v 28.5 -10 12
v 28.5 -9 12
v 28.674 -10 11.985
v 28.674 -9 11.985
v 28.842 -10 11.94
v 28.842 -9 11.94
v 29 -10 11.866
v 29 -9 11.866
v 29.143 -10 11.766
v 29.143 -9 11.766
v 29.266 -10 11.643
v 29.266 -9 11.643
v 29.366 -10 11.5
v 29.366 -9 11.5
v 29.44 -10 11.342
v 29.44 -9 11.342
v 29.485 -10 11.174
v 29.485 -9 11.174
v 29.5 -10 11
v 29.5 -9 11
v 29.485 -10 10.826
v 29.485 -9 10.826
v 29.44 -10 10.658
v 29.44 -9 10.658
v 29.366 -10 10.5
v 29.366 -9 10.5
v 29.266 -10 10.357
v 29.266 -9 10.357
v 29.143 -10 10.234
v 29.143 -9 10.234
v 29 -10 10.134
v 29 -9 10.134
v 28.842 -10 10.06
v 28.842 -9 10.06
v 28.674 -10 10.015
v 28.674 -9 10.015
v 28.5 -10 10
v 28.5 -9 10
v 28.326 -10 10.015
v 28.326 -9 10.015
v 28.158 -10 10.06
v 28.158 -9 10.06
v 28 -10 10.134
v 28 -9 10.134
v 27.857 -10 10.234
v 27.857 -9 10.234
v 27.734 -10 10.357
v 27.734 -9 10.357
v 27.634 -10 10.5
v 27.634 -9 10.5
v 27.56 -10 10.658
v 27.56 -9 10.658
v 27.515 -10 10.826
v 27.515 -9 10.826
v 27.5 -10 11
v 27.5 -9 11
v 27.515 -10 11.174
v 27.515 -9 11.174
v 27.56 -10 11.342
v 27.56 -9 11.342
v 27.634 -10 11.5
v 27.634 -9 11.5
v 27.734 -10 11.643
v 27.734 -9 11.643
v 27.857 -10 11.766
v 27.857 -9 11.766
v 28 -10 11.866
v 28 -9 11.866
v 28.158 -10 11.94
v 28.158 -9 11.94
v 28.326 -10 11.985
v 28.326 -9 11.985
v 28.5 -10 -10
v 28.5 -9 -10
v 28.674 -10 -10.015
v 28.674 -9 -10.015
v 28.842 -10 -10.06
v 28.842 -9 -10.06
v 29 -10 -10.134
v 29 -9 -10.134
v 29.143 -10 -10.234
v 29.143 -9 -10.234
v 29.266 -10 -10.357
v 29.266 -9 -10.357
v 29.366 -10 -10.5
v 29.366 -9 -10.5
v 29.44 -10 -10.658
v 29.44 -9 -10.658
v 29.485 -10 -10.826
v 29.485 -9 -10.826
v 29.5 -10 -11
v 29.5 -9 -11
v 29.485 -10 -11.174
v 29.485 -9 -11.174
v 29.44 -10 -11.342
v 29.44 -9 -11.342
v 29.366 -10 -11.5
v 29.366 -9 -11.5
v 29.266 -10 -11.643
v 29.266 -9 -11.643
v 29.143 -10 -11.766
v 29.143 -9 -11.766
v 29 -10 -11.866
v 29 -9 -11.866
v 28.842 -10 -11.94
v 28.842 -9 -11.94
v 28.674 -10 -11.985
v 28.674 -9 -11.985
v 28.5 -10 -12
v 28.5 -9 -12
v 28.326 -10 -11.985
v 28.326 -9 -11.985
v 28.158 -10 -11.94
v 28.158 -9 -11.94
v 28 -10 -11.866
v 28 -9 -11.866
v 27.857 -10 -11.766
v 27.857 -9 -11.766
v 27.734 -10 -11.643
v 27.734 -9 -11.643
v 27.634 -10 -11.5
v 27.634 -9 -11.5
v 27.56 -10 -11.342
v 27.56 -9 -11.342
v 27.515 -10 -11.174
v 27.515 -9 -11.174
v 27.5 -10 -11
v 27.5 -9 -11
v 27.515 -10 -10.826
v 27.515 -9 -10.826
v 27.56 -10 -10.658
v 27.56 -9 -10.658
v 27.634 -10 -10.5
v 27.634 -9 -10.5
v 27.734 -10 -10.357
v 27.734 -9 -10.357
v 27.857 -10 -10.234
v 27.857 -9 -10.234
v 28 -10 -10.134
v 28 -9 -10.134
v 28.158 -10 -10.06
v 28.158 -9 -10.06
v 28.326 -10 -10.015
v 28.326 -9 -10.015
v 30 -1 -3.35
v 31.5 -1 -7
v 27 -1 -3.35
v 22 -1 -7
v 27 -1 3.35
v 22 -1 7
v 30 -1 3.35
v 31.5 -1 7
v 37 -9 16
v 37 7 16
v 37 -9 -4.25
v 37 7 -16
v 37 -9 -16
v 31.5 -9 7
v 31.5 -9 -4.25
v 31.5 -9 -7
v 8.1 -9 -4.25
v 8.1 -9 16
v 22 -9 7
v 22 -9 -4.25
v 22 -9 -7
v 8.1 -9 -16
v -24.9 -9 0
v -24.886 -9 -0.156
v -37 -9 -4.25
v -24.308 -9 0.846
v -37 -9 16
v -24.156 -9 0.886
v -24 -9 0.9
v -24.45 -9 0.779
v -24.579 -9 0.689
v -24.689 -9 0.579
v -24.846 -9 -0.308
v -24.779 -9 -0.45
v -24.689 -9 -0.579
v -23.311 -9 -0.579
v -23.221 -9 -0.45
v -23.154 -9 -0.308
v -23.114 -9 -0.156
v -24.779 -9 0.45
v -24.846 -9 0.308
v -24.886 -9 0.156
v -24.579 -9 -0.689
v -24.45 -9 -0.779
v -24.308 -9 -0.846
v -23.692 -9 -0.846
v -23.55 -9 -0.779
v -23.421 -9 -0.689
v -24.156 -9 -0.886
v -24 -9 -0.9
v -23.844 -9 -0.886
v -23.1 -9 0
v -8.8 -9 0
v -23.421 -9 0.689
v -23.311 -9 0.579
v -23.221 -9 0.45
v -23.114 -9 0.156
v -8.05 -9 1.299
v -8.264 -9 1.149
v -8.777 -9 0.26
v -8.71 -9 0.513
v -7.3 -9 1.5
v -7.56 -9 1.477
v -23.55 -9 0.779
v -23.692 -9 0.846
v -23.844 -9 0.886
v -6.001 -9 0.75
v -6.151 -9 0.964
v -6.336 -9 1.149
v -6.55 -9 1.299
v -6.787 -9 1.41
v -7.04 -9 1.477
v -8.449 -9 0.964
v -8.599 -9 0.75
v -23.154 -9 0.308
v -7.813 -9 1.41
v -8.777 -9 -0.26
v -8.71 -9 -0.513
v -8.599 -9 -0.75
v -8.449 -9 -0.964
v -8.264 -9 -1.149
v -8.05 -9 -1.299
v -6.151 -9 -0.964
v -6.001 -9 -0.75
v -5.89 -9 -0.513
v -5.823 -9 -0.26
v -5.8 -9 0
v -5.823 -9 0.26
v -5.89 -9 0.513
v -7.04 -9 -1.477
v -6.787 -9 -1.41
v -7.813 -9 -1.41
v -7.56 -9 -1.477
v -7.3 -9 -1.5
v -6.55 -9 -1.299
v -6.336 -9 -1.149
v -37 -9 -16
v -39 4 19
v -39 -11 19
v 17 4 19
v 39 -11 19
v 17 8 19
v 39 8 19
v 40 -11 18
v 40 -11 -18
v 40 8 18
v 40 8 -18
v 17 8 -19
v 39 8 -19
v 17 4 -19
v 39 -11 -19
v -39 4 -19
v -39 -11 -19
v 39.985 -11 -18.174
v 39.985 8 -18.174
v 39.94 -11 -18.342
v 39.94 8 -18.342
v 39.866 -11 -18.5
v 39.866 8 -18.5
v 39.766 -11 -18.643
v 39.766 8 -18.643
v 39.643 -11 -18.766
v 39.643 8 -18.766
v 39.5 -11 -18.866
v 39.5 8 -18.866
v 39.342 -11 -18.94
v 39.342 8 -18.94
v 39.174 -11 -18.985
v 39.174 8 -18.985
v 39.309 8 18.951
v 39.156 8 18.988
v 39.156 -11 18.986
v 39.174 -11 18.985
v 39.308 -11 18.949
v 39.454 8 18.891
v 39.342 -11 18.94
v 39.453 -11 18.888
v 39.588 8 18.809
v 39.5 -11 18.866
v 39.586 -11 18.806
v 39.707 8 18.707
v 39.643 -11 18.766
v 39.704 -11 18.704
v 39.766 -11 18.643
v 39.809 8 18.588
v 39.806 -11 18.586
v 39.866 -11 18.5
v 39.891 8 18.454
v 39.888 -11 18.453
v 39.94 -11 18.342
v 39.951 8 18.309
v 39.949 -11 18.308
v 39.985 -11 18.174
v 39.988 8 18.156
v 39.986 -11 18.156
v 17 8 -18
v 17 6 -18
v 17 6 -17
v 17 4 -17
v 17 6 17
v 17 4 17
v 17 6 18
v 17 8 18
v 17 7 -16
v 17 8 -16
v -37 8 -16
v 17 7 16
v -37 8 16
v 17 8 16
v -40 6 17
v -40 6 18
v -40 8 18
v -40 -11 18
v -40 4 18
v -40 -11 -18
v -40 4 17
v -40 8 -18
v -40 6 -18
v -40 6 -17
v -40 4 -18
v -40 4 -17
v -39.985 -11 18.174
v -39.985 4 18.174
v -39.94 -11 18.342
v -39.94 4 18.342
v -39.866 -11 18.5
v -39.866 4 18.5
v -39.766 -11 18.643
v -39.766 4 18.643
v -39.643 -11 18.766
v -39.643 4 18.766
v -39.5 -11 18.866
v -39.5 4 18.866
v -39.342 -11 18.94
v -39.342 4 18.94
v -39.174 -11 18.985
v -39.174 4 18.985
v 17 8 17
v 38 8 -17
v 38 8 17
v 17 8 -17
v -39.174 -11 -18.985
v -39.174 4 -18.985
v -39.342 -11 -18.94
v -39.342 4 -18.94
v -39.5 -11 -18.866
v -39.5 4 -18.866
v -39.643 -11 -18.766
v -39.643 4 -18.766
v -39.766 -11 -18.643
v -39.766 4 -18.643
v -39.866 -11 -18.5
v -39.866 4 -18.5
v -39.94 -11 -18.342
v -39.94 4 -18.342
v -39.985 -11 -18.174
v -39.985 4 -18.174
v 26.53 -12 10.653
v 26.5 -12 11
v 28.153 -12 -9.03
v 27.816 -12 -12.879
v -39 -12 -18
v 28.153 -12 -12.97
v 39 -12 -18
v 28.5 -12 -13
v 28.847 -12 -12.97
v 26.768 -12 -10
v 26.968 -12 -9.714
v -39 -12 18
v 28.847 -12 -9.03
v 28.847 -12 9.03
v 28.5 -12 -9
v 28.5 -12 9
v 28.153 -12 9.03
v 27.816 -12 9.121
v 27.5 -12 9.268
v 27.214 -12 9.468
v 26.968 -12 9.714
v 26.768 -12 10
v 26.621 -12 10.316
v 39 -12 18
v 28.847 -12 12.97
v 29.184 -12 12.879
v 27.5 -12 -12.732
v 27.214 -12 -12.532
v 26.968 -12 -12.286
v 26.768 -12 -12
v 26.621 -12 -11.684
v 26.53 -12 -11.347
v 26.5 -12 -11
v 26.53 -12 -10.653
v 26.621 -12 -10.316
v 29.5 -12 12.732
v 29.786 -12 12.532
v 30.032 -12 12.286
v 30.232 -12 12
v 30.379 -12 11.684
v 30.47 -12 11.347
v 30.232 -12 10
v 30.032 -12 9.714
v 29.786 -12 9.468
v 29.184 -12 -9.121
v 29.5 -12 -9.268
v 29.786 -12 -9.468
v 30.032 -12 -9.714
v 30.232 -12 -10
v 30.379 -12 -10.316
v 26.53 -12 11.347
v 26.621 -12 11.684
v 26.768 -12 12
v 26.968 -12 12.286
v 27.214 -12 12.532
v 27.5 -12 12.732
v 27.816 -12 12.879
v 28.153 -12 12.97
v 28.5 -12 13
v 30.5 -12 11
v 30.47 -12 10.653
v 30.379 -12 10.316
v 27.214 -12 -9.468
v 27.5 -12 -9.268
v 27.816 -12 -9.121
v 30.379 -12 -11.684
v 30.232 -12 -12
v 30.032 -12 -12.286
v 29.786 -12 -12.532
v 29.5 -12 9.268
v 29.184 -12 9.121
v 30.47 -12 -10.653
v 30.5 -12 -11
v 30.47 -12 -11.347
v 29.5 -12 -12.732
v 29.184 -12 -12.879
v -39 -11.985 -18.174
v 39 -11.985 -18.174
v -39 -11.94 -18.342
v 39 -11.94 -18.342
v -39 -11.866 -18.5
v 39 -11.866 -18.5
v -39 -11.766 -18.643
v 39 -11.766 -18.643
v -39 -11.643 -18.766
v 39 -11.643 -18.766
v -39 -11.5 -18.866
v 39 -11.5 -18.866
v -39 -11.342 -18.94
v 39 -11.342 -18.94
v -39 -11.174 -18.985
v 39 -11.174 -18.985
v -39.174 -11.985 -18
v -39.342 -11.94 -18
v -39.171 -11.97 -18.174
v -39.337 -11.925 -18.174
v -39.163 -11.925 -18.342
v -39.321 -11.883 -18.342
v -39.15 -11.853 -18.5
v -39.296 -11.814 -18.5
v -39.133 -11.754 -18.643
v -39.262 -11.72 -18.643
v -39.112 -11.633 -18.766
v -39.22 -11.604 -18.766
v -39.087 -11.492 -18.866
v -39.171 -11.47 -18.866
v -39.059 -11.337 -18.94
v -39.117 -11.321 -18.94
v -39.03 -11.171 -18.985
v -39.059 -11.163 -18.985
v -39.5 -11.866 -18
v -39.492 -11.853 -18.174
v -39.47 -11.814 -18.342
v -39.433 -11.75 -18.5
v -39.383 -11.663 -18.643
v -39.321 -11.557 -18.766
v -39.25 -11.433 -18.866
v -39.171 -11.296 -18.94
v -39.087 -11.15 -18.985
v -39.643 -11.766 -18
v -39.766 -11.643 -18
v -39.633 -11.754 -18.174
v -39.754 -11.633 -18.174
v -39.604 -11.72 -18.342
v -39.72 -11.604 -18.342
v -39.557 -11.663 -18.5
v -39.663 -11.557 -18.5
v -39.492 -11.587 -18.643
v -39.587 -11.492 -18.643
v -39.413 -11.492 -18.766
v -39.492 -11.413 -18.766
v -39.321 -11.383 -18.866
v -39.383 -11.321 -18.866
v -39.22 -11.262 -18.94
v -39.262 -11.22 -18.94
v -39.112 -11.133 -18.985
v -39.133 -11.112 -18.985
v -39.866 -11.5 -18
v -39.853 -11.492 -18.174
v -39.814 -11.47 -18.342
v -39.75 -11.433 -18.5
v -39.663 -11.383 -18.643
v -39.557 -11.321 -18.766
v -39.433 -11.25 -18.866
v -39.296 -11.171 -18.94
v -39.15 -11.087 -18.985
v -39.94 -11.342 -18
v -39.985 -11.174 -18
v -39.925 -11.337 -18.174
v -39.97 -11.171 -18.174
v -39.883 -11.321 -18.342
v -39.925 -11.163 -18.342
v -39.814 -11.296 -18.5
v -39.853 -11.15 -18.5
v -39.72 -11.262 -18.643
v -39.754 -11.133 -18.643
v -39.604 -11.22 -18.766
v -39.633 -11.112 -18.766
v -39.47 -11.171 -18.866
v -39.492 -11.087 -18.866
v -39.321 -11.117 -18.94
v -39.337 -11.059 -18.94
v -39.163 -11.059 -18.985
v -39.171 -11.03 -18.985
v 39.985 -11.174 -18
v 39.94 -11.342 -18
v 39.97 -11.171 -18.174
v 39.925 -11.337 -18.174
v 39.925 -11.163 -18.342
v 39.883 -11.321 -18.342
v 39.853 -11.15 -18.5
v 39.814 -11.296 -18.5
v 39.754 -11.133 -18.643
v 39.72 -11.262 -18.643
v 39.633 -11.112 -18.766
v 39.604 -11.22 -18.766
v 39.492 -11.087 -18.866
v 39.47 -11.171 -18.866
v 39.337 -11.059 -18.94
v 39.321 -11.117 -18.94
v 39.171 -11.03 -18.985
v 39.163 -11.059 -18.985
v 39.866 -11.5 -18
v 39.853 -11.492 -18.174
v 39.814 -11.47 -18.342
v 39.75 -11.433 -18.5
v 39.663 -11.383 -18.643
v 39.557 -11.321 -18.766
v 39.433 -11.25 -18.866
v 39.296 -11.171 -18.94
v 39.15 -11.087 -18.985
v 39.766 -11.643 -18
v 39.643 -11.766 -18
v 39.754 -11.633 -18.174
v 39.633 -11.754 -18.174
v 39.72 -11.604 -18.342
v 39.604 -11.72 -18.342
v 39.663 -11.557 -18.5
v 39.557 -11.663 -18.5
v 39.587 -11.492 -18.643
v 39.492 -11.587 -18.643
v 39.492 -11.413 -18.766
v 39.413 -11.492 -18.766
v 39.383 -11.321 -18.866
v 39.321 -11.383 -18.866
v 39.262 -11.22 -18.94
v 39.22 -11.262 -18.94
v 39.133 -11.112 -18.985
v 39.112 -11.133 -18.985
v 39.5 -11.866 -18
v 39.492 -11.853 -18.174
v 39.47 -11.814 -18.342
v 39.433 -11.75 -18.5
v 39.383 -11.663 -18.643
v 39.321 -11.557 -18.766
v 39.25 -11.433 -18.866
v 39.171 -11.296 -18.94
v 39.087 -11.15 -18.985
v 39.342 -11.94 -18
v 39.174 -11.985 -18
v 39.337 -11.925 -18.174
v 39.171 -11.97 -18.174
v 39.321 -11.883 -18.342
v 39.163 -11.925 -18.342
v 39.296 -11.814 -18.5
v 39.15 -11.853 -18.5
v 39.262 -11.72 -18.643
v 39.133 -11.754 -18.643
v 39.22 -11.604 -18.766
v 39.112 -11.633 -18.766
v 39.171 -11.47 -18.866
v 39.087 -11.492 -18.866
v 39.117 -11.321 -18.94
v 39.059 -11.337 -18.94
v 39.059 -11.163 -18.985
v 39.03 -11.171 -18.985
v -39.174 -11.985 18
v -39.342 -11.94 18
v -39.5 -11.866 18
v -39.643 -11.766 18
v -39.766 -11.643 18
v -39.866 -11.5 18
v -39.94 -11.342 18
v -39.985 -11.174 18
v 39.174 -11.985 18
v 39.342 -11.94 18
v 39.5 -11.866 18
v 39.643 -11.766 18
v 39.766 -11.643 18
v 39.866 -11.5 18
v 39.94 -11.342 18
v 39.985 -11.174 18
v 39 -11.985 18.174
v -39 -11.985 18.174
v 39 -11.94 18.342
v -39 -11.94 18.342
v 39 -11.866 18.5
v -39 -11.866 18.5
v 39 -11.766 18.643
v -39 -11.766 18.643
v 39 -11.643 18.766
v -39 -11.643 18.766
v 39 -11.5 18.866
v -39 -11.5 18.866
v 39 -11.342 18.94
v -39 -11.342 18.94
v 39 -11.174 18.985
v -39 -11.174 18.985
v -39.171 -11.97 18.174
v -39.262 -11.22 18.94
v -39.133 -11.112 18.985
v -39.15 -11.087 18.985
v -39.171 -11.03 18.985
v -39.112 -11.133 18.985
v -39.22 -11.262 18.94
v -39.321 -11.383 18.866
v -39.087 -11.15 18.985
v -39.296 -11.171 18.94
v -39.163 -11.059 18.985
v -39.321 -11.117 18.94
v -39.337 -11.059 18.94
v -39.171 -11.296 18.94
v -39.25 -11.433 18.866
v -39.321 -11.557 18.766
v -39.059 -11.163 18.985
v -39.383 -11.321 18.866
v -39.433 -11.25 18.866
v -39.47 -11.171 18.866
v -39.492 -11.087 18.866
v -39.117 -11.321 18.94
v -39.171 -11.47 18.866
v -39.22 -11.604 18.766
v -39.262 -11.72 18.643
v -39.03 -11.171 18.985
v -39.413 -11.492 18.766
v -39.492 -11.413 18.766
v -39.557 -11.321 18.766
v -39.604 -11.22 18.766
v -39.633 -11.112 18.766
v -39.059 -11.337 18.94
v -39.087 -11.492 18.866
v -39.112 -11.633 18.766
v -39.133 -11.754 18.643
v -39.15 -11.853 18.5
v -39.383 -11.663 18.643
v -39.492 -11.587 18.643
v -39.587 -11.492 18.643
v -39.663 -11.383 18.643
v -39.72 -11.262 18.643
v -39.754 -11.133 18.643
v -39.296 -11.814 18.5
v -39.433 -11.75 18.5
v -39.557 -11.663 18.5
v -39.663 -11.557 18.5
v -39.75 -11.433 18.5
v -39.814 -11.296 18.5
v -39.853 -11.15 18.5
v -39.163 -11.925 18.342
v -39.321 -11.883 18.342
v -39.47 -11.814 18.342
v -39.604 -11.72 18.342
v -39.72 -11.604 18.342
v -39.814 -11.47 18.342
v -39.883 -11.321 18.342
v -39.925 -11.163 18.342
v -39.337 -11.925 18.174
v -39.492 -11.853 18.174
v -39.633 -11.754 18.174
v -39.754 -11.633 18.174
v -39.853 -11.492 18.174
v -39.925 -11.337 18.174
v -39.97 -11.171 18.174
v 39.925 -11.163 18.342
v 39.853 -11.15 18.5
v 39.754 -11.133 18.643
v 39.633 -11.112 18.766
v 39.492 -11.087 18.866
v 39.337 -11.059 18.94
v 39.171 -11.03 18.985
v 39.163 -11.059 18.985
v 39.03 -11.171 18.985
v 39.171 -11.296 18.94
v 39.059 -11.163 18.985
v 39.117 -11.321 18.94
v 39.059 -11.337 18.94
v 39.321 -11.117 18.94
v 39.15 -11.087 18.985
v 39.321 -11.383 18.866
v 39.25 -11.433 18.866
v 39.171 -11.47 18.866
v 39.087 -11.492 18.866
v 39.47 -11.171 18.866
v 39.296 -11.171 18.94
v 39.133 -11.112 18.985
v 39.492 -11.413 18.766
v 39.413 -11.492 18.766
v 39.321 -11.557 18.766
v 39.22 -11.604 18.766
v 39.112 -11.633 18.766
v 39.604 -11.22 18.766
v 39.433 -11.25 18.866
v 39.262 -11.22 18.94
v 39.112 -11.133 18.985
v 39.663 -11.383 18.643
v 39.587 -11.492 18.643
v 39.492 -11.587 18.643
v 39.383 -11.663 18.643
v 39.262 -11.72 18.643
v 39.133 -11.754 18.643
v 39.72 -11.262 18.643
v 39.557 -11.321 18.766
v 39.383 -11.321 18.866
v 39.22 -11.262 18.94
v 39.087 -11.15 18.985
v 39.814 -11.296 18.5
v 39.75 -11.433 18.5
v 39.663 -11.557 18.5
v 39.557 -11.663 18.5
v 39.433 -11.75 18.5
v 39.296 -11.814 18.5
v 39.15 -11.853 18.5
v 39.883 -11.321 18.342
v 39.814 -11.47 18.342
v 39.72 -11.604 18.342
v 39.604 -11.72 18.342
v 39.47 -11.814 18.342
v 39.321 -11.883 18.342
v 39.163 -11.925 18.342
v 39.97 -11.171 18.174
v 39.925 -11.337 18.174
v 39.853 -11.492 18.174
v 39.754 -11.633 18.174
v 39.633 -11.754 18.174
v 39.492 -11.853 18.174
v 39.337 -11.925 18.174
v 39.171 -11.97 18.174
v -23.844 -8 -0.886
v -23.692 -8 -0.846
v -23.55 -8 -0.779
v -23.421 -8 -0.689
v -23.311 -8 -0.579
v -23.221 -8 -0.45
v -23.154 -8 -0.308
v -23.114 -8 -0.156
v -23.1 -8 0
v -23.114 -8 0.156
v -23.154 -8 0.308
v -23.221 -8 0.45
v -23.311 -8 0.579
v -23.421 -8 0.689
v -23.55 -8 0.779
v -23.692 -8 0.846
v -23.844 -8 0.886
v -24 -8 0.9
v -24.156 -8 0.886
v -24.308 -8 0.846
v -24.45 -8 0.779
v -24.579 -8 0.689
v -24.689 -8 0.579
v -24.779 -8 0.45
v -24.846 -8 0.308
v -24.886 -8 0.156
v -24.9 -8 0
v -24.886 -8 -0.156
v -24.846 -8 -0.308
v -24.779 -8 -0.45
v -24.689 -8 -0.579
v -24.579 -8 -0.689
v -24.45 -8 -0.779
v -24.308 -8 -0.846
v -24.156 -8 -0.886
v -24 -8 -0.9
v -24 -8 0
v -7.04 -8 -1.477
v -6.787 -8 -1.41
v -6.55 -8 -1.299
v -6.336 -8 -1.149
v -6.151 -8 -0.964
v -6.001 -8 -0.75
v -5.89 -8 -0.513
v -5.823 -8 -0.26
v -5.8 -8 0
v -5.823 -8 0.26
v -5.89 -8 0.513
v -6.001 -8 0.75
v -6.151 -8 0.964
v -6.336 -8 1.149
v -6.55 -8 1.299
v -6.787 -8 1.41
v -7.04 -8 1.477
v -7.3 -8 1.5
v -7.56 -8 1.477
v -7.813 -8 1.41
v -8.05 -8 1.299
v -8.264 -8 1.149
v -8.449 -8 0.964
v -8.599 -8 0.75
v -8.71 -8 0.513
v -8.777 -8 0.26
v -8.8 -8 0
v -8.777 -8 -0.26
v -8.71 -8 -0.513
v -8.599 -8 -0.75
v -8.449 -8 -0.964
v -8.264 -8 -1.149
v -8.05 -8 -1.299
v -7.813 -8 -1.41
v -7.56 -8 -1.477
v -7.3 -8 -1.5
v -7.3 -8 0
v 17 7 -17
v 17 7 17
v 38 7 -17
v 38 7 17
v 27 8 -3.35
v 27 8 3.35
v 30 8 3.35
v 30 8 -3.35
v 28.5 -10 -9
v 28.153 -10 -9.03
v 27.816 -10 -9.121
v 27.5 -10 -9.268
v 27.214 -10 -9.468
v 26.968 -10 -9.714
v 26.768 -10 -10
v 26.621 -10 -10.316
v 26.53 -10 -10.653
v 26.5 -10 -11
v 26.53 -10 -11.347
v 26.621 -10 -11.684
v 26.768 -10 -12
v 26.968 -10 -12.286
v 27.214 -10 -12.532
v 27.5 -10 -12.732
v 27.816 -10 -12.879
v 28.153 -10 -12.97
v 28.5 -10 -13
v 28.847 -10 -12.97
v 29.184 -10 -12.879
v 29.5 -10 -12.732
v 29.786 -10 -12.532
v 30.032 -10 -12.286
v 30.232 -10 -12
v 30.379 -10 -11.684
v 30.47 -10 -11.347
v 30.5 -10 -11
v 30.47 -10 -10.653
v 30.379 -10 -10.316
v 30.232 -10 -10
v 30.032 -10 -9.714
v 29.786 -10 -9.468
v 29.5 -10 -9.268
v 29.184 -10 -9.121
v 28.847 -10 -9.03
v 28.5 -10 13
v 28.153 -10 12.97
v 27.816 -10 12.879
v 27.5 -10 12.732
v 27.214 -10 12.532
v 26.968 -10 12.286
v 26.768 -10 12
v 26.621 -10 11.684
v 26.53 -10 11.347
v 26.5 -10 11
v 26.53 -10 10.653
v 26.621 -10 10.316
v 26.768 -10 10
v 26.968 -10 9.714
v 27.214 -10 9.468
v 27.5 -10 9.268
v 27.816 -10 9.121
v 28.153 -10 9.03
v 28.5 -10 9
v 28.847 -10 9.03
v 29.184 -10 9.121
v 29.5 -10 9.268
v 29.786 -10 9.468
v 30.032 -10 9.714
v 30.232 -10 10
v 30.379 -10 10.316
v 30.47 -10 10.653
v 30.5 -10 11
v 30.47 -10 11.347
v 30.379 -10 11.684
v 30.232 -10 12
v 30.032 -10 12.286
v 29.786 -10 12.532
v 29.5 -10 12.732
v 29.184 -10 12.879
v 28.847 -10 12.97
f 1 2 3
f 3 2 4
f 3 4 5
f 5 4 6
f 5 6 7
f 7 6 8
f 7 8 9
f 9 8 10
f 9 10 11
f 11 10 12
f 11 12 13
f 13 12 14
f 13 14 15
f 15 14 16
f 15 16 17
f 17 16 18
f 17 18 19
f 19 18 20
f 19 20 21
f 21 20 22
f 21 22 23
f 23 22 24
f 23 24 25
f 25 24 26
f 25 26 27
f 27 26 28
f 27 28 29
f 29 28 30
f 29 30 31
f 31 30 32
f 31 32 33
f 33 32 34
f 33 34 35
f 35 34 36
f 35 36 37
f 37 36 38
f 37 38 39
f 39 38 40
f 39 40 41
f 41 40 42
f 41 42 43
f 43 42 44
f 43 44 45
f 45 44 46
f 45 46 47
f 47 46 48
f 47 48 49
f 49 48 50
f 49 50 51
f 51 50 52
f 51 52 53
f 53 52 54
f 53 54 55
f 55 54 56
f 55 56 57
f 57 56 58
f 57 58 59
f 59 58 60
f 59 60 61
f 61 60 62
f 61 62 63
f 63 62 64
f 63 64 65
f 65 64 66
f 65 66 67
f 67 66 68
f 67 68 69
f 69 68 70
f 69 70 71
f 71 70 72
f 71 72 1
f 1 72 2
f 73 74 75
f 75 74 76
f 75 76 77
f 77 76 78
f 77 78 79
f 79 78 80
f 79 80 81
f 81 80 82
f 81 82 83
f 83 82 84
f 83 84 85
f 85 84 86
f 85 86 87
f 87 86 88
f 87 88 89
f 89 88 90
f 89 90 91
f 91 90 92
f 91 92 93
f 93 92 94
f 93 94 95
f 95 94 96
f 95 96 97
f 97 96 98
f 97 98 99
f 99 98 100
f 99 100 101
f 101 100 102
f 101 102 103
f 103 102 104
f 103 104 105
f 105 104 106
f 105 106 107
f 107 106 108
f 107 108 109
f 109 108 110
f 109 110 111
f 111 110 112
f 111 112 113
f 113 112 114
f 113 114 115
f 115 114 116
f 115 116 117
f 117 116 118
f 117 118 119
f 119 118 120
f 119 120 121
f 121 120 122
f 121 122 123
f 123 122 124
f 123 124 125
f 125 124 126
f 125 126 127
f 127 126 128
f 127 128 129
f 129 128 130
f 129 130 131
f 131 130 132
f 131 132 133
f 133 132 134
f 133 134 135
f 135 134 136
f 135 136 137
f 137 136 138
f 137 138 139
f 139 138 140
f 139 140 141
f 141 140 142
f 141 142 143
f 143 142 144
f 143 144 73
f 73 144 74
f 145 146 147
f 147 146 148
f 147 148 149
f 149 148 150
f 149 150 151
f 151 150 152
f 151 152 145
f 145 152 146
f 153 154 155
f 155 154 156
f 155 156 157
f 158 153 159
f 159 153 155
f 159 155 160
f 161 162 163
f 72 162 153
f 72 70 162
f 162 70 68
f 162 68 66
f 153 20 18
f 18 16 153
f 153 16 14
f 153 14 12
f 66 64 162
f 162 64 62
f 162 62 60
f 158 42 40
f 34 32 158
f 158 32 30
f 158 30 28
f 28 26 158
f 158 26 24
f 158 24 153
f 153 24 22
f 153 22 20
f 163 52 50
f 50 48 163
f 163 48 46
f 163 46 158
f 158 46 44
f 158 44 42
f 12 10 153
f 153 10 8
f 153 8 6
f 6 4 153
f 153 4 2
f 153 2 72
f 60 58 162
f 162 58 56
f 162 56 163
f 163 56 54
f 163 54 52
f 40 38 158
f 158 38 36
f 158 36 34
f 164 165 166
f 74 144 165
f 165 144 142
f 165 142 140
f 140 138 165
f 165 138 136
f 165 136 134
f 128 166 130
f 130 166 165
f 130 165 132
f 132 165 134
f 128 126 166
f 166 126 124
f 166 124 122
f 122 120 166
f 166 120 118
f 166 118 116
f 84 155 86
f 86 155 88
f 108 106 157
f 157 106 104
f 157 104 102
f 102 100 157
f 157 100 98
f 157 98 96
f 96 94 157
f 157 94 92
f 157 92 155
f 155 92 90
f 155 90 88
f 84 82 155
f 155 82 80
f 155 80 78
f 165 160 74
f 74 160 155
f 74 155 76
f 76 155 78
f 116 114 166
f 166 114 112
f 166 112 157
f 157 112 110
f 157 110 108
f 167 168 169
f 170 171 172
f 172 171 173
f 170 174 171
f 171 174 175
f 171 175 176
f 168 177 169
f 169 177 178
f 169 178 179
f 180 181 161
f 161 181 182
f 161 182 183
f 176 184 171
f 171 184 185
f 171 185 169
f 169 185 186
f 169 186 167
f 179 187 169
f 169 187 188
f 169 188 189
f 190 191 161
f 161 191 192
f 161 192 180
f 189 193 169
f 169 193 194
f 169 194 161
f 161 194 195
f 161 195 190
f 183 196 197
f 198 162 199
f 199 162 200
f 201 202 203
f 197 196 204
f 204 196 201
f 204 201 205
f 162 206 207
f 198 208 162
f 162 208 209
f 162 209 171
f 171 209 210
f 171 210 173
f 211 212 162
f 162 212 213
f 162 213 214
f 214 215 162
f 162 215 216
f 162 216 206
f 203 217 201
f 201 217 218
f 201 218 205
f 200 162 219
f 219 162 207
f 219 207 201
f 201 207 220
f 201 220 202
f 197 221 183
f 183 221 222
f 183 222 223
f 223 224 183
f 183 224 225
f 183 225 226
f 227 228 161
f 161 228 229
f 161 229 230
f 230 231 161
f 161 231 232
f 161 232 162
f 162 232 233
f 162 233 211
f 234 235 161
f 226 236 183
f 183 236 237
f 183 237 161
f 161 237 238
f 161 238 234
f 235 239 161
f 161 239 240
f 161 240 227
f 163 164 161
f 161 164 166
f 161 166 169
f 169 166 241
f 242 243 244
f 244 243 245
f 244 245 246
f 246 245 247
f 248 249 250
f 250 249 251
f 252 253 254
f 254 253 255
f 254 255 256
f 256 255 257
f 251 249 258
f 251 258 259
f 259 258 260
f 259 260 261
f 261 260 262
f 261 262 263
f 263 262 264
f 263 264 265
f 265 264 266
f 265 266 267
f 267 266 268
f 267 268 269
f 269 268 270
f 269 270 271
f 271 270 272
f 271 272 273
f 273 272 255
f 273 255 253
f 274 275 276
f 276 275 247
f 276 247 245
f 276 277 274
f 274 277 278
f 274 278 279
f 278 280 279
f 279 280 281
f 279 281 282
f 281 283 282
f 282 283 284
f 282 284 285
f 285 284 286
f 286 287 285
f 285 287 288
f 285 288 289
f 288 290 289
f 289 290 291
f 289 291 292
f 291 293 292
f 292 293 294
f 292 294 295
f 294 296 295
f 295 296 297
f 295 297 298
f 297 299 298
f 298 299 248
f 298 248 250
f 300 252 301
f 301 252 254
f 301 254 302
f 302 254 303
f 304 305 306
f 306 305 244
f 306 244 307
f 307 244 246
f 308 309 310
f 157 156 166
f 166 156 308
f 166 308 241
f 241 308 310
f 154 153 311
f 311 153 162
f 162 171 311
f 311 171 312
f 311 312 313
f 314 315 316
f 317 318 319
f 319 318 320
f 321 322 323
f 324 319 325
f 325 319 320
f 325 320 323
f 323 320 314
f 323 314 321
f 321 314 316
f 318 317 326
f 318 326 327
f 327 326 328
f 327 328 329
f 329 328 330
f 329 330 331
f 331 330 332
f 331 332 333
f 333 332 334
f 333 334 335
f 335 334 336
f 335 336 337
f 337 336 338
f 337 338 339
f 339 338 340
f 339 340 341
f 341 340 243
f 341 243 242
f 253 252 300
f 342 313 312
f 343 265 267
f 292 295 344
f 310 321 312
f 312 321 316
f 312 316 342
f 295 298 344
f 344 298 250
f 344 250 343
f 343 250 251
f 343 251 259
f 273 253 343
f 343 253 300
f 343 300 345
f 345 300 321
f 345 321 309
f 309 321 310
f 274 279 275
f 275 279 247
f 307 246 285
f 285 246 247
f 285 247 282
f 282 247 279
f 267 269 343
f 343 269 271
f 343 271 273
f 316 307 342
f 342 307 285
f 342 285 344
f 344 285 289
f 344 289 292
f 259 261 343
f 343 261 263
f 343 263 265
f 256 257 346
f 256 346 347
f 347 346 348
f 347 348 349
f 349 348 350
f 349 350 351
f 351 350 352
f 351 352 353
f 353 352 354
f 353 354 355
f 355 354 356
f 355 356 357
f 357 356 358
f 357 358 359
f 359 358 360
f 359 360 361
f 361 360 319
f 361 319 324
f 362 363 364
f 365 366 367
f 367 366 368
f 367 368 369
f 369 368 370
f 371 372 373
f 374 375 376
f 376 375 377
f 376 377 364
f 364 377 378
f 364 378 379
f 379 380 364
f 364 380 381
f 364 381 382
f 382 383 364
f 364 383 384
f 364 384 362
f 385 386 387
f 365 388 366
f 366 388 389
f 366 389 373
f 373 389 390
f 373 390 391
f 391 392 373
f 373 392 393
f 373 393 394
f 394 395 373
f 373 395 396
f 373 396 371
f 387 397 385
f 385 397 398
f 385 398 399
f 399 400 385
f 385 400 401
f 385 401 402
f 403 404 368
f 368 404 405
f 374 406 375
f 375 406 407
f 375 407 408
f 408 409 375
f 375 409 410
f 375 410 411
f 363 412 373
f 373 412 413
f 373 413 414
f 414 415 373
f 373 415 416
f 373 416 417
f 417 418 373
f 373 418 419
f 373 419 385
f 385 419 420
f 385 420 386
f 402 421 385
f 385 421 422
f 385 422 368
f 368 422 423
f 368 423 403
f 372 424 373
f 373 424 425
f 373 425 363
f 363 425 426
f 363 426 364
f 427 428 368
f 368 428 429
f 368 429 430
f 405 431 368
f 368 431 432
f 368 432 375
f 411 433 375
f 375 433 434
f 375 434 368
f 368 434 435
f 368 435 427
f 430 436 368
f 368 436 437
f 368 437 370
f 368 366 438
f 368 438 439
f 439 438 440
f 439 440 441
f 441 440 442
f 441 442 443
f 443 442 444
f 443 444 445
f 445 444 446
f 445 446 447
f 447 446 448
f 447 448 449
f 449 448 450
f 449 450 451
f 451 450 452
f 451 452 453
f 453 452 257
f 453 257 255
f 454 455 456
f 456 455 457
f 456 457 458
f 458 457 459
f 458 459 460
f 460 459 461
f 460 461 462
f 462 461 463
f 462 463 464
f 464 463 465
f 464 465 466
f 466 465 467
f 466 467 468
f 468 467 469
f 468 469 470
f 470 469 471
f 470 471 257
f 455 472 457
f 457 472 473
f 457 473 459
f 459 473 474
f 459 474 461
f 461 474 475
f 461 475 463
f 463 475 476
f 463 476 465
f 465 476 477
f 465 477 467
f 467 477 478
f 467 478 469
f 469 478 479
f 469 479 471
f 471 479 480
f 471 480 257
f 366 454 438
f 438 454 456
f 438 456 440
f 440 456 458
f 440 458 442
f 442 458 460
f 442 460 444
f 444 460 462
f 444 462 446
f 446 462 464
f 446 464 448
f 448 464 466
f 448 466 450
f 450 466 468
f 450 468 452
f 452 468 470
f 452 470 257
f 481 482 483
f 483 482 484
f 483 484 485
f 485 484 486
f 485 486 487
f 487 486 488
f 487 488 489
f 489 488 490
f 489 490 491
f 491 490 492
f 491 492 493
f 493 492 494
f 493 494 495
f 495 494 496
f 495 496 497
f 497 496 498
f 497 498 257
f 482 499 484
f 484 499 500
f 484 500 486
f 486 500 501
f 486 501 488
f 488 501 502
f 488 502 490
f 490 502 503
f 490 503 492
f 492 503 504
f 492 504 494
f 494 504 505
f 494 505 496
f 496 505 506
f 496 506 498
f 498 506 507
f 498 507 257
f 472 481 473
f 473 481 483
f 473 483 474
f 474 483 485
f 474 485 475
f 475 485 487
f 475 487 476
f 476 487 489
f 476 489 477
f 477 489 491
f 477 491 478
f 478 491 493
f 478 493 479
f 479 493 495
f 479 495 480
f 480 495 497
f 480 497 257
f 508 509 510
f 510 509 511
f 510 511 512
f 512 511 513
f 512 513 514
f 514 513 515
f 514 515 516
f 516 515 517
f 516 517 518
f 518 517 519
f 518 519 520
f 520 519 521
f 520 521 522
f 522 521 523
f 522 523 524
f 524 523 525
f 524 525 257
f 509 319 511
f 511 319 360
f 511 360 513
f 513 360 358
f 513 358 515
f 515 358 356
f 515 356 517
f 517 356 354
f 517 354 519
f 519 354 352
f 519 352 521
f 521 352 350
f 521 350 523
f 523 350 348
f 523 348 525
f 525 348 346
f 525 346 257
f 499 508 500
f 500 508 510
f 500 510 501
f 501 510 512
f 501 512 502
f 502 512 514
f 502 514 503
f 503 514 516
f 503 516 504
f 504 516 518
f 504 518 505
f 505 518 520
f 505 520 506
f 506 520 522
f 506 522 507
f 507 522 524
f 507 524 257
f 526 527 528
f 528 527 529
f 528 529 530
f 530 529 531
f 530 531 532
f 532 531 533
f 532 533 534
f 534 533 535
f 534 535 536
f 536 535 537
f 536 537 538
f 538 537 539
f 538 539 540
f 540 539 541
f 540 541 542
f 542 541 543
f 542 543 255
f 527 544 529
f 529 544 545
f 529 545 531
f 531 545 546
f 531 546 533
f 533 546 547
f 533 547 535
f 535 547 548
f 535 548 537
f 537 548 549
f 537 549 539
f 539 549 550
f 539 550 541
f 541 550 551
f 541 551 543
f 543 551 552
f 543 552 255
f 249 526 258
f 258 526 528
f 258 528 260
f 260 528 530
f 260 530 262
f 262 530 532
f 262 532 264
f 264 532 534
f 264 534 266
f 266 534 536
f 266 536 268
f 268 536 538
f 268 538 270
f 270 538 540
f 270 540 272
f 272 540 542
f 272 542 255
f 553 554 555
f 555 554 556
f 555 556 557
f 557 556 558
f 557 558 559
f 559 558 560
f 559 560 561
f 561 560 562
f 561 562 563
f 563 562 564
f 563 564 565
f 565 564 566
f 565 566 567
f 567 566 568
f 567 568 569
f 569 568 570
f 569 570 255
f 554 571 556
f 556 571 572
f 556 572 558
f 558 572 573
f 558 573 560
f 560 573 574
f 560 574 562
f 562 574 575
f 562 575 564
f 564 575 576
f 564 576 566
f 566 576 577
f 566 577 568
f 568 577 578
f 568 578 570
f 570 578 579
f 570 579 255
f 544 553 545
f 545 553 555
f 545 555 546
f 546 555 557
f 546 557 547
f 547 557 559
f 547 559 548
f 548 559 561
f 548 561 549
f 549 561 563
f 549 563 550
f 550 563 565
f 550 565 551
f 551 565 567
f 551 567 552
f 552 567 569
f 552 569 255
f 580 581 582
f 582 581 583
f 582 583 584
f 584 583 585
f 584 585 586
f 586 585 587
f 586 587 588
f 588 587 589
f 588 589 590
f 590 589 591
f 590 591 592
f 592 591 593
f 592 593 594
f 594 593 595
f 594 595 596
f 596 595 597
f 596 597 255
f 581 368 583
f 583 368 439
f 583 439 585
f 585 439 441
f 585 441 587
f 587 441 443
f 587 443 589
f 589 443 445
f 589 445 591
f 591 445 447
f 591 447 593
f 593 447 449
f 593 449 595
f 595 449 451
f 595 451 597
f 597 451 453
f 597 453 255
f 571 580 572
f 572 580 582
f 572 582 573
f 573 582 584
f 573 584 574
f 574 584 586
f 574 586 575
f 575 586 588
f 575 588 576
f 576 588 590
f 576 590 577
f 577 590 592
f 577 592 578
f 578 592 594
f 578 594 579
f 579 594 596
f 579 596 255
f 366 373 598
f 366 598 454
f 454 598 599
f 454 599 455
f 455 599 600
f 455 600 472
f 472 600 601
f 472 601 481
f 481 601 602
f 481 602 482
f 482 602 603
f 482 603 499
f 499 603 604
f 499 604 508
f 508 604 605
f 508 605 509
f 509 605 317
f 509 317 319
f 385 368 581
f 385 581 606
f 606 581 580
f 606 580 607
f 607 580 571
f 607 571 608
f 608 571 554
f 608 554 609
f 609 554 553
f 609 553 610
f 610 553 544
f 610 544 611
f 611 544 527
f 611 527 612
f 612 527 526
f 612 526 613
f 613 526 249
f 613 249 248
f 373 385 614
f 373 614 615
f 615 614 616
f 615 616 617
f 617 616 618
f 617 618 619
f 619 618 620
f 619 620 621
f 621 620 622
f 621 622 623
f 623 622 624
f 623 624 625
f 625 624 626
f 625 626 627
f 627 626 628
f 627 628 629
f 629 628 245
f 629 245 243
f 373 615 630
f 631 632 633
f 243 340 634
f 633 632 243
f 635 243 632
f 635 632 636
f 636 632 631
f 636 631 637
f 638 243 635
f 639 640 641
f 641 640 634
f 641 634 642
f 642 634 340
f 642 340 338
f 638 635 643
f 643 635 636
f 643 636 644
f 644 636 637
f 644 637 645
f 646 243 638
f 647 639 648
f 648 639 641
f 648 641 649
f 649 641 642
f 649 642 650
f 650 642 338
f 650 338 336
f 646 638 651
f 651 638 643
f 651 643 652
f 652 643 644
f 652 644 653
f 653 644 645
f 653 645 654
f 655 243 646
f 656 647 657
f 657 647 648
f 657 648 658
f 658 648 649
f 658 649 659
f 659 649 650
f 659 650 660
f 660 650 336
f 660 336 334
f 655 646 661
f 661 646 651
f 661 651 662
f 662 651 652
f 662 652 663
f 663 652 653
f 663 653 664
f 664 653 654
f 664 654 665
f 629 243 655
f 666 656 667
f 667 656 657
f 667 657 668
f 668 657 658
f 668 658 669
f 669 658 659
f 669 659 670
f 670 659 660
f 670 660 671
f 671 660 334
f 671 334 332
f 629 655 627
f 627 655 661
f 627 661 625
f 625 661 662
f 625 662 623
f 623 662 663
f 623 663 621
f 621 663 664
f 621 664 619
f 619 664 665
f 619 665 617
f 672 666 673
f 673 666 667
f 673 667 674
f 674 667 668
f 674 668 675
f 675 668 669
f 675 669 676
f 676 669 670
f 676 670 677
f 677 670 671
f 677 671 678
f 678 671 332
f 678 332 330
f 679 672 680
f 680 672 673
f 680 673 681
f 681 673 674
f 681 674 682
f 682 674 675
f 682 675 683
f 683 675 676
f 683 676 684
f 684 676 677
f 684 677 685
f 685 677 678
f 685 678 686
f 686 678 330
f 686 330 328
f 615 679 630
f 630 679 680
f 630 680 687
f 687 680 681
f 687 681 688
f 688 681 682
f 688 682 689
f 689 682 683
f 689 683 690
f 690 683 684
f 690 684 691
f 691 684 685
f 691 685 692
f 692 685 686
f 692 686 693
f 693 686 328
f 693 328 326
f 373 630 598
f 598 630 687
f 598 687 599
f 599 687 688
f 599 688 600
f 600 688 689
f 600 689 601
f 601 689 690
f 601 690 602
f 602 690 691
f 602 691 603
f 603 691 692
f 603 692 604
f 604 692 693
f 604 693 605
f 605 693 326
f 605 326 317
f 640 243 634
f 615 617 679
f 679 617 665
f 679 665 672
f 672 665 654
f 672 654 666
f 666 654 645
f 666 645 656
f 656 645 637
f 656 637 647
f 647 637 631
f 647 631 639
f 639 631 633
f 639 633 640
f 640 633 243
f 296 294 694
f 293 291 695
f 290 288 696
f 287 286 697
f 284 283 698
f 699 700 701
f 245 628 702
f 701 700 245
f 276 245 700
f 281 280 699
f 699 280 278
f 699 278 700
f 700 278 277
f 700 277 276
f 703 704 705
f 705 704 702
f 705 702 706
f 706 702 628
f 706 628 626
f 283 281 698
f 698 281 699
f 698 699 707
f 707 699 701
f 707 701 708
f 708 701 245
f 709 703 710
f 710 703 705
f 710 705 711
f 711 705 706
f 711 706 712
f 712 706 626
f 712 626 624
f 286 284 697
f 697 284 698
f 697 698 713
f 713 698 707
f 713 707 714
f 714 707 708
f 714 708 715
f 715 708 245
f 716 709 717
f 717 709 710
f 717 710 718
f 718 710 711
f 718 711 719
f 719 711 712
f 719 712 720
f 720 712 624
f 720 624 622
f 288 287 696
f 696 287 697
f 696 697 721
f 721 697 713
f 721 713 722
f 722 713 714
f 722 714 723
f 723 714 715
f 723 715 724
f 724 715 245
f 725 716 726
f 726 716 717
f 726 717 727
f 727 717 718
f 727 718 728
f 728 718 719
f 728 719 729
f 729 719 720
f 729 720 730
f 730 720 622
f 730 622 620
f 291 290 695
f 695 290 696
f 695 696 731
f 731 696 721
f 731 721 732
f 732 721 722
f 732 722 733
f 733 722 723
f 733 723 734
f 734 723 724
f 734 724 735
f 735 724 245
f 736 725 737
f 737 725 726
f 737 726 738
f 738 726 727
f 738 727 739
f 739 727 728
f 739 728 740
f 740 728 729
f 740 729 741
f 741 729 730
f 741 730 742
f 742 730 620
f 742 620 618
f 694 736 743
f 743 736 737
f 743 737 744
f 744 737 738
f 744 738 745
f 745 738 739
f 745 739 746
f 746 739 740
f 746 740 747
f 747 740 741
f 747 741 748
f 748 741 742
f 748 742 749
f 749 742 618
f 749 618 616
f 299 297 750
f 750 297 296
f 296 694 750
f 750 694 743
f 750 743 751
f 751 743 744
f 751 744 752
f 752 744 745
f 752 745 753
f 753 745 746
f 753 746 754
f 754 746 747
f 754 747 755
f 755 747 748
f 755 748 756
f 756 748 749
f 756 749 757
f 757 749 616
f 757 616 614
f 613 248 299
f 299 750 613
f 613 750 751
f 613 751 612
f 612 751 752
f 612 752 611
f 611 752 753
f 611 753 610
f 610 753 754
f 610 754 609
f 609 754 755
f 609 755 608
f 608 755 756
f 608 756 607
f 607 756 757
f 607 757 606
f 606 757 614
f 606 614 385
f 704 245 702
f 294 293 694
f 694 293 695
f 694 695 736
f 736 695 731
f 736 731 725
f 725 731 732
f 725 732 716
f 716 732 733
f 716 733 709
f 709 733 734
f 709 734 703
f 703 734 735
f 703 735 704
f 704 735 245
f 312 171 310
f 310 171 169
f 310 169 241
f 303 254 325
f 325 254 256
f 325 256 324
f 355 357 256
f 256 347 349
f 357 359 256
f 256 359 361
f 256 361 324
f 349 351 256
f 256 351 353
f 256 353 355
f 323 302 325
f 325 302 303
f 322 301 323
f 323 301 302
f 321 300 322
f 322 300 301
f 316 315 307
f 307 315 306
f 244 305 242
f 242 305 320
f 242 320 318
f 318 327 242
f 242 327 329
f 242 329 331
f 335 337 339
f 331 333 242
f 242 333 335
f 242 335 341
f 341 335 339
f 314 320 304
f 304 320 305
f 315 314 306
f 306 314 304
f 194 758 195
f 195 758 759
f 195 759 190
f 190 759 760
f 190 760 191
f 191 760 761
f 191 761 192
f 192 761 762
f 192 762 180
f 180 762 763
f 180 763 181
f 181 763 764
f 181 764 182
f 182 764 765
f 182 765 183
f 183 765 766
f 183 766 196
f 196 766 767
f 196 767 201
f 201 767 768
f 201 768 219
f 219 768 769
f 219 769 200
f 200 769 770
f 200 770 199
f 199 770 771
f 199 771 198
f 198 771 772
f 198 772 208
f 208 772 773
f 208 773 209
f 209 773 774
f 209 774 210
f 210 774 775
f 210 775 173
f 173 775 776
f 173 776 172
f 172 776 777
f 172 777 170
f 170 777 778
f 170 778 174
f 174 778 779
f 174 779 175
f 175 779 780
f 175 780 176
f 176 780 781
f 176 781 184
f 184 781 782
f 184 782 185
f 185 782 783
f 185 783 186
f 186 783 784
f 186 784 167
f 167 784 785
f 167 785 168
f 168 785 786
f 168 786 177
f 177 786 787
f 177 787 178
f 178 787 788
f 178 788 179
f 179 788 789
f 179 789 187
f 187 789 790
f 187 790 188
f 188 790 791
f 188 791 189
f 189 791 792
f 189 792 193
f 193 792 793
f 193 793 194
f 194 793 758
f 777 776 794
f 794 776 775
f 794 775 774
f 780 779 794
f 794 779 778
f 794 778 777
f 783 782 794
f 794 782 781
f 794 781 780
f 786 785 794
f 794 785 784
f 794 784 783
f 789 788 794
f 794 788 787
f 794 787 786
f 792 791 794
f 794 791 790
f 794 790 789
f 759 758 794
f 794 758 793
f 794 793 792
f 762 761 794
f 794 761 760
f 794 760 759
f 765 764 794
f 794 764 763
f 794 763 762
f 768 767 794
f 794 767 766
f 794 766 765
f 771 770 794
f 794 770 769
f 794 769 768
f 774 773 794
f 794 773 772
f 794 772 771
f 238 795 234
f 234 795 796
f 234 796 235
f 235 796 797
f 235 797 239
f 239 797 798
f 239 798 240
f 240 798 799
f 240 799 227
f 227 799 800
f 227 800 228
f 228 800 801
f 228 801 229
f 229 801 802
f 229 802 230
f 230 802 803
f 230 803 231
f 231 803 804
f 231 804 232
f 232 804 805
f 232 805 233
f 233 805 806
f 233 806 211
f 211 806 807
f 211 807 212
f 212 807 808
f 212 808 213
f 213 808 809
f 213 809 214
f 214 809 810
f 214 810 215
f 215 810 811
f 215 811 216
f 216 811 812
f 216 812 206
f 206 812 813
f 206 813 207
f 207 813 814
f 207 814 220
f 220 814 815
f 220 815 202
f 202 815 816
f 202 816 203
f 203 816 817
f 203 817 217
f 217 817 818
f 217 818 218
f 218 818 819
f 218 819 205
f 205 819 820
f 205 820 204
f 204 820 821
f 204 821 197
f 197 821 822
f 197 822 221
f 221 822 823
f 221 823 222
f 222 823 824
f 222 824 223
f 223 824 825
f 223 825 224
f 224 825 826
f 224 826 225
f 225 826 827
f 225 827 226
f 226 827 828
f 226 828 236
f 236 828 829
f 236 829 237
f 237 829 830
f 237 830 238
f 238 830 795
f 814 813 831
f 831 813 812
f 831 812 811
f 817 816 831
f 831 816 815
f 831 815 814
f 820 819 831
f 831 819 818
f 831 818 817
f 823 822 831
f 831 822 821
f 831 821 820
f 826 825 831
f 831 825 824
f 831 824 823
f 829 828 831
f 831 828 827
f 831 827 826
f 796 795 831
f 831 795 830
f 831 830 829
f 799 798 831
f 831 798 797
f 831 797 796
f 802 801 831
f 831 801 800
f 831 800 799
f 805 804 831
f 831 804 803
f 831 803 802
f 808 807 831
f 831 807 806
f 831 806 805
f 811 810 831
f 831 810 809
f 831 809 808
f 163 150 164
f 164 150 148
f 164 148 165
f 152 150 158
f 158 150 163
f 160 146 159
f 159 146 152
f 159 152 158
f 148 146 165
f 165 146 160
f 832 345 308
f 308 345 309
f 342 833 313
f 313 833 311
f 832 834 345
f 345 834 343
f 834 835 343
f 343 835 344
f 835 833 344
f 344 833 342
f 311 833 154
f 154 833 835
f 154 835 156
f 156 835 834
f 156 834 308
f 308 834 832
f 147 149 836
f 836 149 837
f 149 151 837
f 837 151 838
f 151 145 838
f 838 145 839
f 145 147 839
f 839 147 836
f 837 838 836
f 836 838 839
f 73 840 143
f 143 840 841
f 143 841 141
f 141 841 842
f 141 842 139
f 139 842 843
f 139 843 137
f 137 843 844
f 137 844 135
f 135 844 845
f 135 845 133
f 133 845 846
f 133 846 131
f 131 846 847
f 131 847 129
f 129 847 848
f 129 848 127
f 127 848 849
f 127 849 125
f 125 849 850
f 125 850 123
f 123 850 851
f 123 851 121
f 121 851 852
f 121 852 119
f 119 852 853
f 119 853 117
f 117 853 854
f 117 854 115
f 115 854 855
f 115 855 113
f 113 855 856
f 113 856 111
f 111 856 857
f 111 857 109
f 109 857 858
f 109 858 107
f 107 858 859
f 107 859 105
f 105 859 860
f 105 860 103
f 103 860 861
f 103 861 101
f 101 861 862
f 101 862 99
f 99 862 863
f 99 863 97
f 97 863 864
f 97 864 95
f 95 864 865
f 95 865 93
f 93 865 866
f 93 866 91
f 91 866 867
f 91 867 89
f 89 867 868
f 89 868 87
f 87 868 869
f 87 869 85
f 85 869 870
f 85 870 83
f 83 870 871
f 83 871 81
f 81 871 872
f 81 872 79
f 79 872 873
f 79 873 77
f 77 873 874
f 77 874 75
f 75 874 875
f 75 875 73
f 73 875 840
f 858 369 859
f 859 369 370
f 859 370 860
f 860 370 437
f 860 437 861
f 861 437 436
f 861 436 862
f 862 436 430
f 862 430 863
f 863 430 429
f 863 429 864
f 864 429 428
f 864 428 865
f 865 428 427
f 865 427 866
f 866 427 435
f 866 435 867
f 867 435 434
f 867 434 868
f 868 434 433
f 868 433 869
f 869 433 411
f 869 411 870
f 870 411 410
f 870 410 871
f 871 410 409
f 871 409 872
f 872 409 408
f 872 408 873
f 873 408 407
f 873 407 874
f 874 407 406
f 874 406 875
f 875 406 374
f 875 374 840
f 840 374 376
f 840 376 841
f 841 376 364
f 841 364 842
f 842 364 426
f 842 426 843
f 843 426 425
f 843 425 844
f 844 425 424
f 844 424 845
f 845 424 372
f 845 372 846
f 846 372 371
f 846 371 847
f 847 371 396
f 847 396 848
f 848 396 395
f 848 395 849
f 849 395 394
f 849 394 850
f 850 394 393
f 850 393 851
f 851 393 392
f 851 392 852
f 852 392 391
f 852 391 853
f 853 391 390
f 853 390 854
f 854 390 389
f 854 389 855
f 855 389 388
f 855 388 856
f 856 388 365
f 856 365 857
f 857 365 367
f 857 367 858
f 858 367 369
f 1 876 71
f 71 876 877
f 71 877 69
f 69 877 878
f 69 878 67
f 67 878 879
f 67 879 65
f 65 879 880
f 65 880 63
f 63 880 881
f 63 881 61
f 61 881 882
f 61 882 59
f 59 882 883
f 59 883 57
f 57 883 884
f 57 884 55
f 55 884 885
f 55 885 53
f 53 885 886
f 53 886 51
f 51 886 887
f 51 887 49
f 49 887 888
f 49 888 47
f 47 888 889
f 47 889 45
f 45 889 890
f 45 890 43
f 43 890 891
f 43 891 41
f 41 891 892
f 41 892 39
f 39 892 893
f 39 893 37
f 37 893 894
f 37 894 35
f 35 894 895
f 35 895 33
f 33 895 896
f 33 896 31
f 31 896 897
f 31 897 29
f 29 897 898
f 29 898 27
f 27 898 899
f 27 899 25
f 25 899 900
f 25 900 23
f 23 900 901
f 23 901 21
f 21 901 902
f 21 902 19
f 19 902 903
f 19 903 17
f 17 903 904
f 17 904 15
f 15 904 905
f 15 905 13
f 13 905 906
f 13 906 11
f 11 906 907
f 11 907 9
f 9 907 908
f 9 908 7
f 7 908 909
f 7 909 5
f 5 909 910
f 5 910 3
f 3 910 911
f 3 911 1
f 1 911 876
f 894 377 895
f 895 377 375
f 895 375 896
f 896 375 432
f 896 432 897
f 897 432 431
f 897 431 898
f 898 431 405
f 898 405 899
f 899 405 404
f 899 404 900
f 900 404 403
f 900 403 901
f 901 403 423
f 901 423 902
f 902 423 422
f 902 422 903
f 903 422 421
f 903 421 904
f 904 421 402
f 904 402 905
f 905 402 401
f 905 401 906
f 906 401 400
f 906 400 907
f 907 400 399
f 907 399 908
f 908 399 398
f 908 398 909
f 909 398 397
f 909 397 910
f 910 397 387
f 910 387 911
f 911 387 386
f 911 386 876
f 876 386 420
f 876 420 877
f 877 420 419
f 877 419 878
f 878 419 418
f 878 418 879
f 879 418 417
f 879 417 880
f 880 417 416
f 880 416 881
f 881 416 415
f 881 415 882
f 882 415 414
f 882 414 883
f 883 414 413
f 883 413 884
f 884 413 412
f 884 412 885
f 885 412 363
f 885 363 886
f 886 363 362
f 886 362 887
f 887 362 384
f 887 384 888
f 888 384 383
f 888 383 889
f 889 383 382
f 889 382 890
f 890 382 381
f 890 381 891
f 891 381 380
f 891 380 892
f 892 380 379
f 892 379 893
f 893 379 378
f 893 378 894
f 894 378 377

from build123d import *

# Parameters (mm, degrees)
SKETCH1_W           = 80
SKETCH1_H           = 38
BOSS_EXTRUDE1_DEPTH = 12
FILLET1_R           = 1
SKETCH3_W           = 57
SKETCH3_H           = 38
CUT_EXTRUDE1_DEPTH  = 4
SHELL1_T            = -3
CUT_EXTRUDE2_DEPTH  = 57
SKETCH5_R           = 0.9
SKETCH5_R_2         = 1.5
BOSS_EXTRUDE2_DEPTH = 1
SKETCH6_W           = 23
SKETCH6_H           = 38
CUT_EXTRUDE3_DEPTH  = 4
SKETCH7_W           = 9.5
SKETCH7_H           = 14
BOSS_EXTRUDE3_DEPTH = 8
SKETCH9_W           = 21
SKETCH9_H           = 34
CUT_EXTRUDE6_DEPTH  = 1
SKETCH8_W           = 3
SKETCH8_H           = 6.7
BOSS_EXTRUDE4_DEPTH = 9
CUT_EXTRUDE7_REACH  = 49.434
SKETCH10_R          = 1
SKETCH11_R          = 2
CUT_EXTRUDE8_DEPTH  = 2


with BuildPart() as part:
    # Sketch1 → Boss-Extrude1 (new, symmetric)
    with BuildSketch(Plane(origin=(0, 0, 0), x_dir=(1, 0, 0), z_dir=(0, 1, 0))):
        Rectangle(SKETCH1_W, SKETCH1_H)
    extrude(amount=BOSS_EXTRUDE1_DEPTH, both=True)

    # Fillet1
    fillet1_edges = [part.edges().sort_by_distance(p)[0] for p in [
        (-40, 12, 0),
        (0, 12, 19),
        (40, 12, 0),
        (0, -12, 19),
        (-40, -12, 0),
        (0, -12, -19),
        (40, -12, 0),
        (0, 12, -19),
        (40, 0, 19),
        (-40, 0, 19),
        (-40, 0, -19),
        (40, 0, -19),
    ]]
    fillet(fillet1_edges, radius=FILLET1_R)

    # Sketch3 → Cut-Extrude1 (cut)
    with BuildSketch(Plane(origin=(0, 12, 0), x_dir=(1, 0, 0), z_dir=(0, 1, 0))):
        with Locations((-11.5, 0)):
            Rectangle(SKETCH3_W, SKETCH3_H)
    extrude(amount=-CUT_EXTRUDE1_DEPTH, mode=Mode.SUBTRACT)

    # Shell1
    shell1_openings = [part.faces().sort_by_distance(p)[0] for p in [
        (17, 9.994969103, 0),
        (-11.494395734, 8, 0),
    ]]
    offset(amount=SHELL1_T, openings=shell1_openings, kind=Kind.INTERSECTION)

    # Sketch4 → Cut-Extrude2 (cut)
    with BuildSketch(Plane.ZY.offset(40)):
        Polygon((-18, 8), (-19, 8), (-19, 4), (-18, 4), (-17, 4), (-17, 6), (-18, 6), align=None)
    cut_extrude2 = extrude(amount=-CUT_EXTRUDE2_DEPTH, mode=Mode.SUBTRACT)

    # Mirror1: Cut-Extrude2 across plane
    add(cut_extrude2.mirror(Plane.XY), mode=Mode.SUBTRACT)

    # Sketch5 → Boss-Extrude2 (add)
    with BuildSketch(Plane(origin=(0, -9, 0), x_dir=(1, 0, 0), z_dir=(0, 1, 0))):
        with Locations(Location((-24, 0, 0), (0, 0, 270))):
            Circle(SKETCH5_R)
        with Locations(Location((-7.3, 0, 0), (0, 0, 270))):
            Circle(SKETCH5_R_2)
    extrude(amount=BOSS_EXTRUDE2_DEPTH)

    # Sketch6 → Cut-Extrude3 (cut)
    with BuildSketch(Plane(origin=(0, 12, 0), x_dir=(1, 0, 0), z_dir=(0, 1, 0))):
        with Locations((28.5, 0)):
            Rectangle(SKETCH6_W, SKETCH6_H)
    extrude(amount=-CUT_EXTRUDE3_DEPTH, mode=Mode.SUBTRACT)

    # Sketch7 → Boss-Extrude3 (add)
    with BuildSketch(Plane(origin=(0, -9, 0), x_dir=(1, 0, 0), z_dir=(0, 1, 0))):
        with Locations((26.75, 0)):
            Rectangle(SKETCH7_W, SKETCH7_H)
    extrude(amount=BOSS_EXTRUDE3_DEPTH)

    # Sketch9 → Cut-Extrude6 (cut)
    with BuildSketch(Plane(origin=(0, 8, 0), x_dir=(1, 0, 0), z_dir=(0, 1, 0))):
        with Locations((27.5, 0)):
            Rectangle(SKETCH9_W, SKETCH9_H)
    extrude(amount=-CUT_EXTRUDE6_DEPTH, mode=Mode.SUBTRACT)

    # Sketch8 → Boss-Extrude4 (add)
    with BuildSketch(Plane(origin=(0, -1, 0), x_dir=(1, 0, 0), z_dir=(0, 1, 0))):
        with Locations((28.5, 0)):
            Rectangle(SKETCH8_W, SKETCH8_H)
    extrude(amount=BOSS_EXTRUDE4_DEPTH)

    # Sketch10 → Cut-Extrude7 (cut, up to next)
    with BuildSketch(Plane(origin=(0, -9, 0), x_dir=(1, 0, 0), z_dir=(0, 1, 0)), mode=Mode.PRIVATE) as cut_extrude7_sk1:
        with Locations(Location((28.5, 11, 0), (0, 0, 270))):
            Circle(SKETCH10_R)
    cut_extrude7_tool1 = extrude(cut_extrude7_sk1.sketch, amount=-CUT_EXTRUDE7_REACH, mode=Mode.PRIVATE) & part.part
    # Sketch10 → Cut-Extrude7 (cut, up to next)
    with BuildSketch(Plane(origin=(0, -9, 0), x_dir=(1, 0, 0), z_dir=(0, 1, 0)), mode=Mode.PRIVATE) as cut_extrude7_sk2:
        with Locations(Location((28.5, -11, 0), (0, 0, 270))):
            Circle(SKETCH10_R)
    cut_extrude7_tool2 = extrude(cut_extrude7_sk2.sketch, amount=-CUT_EXTRUDE7_REACH, mode=Mode.PRIVATE) & part.part
    add(cut_extrude7_tool1.solids().sort_by_distance((28.5, -9, -11))[0], mode=Mode.SUBTRACT)
    add(cut_extrude7_tool2.solids().sort_by_distance((28.5, -9, 11))[0], mode=Mode.SUBTRACT)

    # Sketch11 → Cut-Extrude8 (cut)
    with BuildSketch(Plane.XZ.offset(12)):
        with Locations(Location((28.5, -11, 0), (0, 0, 270))):
            Circle(SKETCH11_R)
        with Locations(Location((28.5, 11, 0), (0, 0, 270))):
            Circle(SKETCH11_R)
    extrude(amount=-CUT_EXTRUDE8_DEPTH, mode=Mode.SUBTRACT)


solid = part.part
